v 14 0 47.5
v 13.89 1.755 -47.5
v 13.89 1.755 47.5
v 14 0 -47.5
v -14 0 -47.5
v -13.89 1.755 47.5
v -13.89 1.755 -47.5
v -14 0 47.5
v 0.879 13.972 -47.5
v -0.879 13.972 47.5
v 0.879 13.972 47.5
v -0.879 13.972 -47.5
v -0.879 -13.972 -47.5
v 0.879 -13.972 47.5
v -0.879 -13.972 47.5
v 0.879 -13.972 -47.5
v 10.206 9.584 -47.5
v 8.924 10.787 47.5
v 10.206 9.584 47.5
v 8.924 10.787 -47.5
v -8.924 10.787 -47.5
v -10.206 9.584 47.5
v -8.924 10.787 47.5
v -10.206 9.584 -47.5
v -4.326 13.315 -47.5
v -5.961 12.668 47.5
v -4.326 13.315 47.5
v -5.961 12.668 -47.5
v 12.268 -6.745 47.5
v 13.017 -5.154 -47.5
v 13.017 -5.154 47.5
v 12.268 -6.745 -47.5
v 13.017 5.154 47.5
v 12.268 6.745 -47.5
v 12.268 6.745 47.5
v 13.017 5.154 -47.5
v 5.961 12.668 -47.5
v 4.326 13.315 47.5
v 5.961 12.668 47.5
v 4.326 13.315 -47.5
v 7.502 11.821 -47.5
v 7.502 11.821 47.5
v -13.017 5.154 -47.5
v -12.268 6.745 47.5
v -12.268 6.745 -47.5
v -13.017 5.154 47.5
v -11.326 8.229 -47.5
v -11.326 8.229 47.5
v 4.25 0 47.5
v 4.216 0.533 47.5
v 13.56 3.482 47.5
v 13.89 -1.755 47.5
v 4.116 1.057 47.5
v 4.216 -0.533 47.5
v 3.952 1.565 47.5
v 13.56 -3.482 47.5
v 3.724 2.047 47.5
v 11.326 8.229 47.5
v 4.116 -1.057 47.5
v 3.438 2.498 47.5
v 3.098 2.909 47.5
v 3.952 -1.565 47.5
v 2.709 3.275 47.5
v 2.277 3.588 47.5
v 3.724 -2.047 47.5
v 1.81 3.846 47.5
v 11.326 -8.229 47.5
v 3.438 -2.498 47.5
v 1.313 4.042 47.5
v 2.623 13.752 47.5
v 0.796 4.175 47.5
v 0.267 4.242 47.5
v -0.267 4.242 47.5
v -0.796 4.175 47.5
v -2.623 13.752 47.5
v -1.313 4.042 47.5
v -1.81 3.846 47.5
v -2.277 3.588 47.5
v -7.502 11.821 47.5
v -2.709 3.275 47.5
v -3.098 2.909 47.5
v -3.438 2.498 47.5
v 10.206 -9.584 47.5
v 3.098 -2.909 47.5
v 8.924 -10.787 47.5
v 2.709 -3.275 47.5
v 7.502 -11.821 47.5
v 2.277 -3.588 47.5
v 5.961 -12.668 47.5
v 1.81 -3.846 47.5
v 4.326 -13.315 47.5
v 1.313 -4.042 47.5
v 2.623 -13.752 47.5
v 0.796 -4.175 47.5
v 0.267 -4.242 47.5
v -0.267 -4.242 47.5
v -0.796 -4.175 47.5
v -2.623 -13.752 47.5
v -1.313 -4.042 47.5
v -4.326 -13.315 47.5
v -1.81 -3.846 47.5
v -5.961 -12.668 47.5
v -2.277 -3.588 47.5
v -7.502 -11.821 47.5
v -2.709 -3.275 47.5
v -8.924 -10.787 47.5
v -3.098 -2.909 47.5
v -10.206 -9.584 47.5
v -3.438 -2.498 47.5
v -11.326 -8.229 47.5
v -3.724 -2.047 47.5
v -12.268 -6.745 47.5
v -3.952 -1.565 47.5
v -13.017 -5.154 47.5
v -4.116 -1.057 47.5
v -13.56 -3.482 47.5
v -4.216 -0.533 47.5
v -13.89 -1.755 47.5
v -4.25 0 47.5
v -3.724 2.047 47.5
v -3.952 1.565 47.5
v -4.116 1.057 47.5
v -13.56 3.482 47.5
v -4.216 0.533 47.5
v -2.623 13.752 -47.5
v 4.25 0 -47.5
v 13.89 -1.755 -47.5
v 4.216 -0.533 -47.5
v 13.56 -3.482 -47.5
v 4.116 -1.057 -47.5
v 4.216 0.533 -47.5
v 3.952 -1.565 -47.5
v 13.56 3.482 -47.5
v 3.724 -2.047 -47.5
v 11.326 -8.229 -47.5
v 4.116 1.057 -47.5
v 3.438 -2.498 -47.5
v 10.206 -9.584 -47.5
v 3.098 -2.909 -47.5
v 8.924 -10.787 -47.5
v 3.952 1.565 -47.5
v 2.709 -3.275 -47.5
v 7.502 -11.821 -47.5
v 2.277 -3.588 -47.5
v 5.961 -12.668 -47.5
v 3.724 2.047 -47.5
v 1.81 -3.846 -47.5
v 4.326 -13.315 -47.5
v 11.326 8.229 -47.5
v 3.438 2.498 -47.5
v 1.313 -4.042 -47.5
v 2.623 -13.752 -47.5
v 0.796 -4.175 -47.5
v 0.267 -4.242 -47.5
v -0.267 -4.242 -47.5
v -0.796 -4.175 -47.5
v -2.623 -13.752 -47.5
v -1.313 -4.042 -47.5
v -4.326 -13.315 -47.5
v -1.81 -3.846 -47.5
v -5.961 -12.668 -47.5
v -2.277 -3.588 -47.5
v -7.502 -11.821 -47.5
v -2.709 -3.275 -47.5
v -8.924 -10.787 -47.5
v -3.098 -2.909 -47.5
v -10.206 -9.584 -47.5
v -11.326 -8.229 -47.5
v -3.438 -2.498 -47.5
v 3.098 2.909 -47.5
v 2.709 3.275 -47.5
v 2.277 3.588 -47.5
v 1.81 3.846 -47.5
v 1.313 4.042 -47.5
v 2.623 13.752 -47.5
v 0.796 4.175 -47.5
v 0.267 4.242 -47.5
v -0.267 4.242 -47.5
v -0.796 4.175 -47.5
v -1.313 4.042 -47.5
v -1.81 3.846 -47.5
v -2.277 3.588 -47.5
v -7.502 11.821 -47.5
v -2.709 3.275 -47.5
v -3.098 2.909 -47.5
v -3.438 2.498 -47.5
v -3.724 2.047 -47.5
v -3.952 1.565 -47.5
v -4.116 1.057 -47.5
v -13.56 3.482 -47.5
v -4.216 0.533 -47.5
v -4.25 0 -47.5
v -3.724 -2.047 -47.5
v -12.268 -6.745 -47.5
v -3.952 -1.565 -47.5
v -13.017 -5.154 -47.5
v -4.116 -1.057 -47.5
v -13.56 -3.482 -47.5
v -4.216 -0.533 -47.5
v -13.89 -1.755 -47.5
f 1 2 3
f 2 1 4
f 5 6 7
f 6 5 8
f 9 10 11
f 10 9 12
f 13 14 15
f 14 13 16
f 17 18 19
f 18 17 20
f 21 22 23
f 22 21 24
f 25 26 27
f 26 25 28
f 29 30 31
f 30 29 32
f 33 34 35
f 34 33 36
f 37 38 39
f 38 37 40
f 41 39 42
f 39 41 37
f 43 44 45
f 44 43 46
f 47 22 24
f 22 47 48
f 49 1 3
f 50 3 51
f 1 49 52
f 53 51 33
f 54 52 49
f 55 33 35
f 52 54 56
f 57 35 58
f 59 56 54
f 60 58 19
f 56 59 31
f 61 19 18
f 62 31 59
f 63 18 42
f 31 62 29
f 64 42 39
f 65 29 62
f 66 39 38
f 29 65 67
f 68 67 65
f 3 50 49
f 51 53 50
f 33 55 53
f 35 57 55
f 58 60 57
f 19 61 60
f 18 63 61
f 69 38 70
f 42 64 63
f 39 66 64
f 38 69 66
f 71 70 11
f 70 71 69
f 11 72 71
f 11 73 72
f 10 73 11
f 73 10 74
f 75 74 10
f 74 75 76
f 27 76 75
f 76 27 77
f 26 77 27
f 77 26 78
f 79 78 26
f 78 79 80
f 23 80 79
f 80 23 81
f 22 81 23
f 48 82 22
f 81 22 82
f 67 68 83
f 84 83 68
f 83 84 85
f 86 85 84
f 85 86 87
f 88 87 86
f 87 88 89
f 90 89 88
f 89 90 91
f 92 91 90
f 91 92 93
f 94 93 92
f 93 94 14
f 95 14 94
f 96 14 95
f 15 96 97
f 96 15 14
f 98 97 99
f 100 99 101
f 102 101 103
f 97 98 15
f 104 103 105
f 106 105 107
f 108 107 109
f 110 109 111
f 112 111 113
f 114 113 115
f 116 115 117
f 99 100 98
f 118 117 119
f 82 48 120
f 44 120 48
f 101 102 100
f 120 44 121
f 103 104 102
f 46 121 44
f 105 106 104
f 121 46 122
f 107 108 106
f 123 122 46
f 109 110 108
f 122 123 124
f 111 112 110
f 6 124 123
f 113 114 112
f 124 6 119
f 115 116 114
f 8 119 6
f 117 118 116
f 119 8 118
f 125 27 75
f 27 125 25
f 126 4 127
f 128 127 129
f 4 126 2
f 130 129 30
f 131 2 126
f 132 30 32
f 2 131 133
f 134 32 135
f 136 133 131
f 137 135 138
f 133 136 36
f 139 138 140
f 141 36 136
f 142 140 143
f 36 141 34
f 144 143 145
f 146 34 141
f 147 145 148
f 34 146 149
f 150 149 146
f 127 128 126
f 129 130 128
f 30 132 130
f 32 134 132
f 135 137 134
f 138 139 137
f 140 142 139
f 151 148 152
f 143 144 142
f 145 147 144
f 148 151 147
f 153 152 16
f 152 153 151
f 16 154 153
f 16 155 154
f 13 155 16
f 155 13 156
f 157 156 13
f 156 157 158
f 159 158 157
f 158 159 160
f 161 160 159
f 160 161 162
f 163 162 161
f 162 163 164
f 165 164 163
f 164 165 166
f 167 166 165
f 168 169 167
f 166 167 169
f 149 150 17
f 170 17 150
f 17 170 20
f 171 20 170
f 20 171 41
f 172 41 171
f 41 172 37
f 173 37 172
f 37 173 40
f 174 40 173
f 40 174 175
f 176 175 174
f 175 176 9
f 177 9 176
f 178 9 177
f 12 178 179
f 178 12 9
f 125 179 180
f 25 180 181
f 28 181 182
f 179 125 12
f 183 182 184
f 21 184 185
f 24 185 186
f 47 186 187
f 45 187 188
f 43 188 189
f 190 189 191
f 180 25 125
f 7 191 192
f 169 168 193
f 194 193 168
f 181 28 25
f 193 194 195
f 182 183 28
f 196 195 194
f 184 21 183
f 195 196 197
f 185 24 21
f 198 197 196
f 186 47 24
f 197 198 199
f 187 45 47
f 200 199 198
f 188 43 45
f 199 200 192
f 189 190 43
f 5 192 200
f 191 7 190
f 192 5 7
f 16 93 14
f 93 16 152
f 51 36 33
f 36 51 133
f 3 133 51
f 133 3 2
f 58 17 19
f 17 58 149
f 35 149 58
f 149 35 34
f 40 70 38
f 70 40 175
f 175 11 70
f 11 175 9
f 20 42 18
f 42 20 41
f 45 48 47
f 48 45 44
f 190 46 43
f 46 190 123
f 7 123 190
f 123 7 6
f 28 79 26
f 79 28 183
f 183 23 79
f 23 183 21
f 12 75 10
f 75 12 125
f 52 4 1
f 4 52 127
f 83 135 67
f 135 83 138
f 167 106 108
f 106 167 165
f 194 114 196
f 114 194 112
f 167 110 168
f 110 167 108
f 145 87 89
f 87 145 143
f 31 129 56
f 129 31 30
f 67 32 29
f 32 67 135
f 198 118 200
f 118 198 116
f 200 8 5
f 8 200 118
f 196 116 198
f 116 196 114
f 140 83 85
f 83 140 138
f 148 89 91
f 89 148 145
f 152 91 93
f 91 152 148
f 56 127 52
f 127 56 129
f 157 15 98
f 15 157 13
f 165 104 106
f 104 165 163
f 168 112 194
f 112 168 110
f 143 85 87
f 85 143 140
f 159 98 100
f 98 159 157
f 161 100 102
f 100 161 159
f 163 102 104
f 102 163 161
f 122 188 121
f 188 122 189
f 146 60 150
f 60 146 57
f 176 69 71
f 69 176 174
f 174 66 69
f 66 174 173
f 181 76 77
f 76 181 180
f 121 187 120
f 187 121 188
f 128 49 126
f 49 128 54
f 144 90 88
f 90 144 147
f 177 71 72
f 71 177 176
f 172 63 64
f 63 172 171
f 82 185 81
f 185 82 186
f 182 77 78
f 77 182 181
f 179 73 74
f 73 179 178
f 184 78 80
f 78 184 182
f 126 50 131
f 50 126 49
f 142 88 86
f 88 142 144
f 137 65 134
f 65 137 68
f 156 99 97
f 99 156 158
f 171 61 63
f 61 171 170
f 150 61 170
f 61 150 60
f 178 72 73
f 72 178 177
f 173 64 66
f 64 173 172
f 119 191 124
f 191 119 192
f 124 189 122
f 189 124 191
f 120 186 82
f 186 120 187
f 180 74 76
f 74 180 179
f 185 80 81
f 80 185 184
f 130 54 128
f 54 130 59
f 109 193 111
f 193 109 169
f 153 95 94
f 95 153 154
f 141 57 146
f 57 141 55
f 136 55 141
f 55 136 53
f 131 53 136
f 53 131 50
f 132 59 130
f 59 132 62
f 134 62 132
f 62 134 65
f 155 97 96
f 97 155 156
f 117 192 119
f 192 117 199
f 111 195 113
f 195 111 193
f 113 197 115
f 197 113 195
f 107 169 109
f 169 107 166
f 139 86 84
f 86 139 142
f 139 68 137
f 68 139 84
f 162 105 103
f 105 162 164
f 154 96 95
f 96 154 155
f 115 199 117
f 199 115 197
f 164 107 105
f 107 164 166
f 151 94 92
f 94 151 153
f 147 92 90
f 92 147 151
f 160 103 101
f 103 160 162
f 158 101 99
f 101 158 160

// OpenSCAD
$fn = 50;


difference() {
	union() {
		translate(v = [0, 0, -47.5000000000]) {
			cylinder(h = 95, r = 14.0000000000);
		}
	}
	union() {
		translate(v = [0, 0, -100.0000000000]) {
			cylinder(h = 200, r = 4.2500000000);
		}
	}
}
